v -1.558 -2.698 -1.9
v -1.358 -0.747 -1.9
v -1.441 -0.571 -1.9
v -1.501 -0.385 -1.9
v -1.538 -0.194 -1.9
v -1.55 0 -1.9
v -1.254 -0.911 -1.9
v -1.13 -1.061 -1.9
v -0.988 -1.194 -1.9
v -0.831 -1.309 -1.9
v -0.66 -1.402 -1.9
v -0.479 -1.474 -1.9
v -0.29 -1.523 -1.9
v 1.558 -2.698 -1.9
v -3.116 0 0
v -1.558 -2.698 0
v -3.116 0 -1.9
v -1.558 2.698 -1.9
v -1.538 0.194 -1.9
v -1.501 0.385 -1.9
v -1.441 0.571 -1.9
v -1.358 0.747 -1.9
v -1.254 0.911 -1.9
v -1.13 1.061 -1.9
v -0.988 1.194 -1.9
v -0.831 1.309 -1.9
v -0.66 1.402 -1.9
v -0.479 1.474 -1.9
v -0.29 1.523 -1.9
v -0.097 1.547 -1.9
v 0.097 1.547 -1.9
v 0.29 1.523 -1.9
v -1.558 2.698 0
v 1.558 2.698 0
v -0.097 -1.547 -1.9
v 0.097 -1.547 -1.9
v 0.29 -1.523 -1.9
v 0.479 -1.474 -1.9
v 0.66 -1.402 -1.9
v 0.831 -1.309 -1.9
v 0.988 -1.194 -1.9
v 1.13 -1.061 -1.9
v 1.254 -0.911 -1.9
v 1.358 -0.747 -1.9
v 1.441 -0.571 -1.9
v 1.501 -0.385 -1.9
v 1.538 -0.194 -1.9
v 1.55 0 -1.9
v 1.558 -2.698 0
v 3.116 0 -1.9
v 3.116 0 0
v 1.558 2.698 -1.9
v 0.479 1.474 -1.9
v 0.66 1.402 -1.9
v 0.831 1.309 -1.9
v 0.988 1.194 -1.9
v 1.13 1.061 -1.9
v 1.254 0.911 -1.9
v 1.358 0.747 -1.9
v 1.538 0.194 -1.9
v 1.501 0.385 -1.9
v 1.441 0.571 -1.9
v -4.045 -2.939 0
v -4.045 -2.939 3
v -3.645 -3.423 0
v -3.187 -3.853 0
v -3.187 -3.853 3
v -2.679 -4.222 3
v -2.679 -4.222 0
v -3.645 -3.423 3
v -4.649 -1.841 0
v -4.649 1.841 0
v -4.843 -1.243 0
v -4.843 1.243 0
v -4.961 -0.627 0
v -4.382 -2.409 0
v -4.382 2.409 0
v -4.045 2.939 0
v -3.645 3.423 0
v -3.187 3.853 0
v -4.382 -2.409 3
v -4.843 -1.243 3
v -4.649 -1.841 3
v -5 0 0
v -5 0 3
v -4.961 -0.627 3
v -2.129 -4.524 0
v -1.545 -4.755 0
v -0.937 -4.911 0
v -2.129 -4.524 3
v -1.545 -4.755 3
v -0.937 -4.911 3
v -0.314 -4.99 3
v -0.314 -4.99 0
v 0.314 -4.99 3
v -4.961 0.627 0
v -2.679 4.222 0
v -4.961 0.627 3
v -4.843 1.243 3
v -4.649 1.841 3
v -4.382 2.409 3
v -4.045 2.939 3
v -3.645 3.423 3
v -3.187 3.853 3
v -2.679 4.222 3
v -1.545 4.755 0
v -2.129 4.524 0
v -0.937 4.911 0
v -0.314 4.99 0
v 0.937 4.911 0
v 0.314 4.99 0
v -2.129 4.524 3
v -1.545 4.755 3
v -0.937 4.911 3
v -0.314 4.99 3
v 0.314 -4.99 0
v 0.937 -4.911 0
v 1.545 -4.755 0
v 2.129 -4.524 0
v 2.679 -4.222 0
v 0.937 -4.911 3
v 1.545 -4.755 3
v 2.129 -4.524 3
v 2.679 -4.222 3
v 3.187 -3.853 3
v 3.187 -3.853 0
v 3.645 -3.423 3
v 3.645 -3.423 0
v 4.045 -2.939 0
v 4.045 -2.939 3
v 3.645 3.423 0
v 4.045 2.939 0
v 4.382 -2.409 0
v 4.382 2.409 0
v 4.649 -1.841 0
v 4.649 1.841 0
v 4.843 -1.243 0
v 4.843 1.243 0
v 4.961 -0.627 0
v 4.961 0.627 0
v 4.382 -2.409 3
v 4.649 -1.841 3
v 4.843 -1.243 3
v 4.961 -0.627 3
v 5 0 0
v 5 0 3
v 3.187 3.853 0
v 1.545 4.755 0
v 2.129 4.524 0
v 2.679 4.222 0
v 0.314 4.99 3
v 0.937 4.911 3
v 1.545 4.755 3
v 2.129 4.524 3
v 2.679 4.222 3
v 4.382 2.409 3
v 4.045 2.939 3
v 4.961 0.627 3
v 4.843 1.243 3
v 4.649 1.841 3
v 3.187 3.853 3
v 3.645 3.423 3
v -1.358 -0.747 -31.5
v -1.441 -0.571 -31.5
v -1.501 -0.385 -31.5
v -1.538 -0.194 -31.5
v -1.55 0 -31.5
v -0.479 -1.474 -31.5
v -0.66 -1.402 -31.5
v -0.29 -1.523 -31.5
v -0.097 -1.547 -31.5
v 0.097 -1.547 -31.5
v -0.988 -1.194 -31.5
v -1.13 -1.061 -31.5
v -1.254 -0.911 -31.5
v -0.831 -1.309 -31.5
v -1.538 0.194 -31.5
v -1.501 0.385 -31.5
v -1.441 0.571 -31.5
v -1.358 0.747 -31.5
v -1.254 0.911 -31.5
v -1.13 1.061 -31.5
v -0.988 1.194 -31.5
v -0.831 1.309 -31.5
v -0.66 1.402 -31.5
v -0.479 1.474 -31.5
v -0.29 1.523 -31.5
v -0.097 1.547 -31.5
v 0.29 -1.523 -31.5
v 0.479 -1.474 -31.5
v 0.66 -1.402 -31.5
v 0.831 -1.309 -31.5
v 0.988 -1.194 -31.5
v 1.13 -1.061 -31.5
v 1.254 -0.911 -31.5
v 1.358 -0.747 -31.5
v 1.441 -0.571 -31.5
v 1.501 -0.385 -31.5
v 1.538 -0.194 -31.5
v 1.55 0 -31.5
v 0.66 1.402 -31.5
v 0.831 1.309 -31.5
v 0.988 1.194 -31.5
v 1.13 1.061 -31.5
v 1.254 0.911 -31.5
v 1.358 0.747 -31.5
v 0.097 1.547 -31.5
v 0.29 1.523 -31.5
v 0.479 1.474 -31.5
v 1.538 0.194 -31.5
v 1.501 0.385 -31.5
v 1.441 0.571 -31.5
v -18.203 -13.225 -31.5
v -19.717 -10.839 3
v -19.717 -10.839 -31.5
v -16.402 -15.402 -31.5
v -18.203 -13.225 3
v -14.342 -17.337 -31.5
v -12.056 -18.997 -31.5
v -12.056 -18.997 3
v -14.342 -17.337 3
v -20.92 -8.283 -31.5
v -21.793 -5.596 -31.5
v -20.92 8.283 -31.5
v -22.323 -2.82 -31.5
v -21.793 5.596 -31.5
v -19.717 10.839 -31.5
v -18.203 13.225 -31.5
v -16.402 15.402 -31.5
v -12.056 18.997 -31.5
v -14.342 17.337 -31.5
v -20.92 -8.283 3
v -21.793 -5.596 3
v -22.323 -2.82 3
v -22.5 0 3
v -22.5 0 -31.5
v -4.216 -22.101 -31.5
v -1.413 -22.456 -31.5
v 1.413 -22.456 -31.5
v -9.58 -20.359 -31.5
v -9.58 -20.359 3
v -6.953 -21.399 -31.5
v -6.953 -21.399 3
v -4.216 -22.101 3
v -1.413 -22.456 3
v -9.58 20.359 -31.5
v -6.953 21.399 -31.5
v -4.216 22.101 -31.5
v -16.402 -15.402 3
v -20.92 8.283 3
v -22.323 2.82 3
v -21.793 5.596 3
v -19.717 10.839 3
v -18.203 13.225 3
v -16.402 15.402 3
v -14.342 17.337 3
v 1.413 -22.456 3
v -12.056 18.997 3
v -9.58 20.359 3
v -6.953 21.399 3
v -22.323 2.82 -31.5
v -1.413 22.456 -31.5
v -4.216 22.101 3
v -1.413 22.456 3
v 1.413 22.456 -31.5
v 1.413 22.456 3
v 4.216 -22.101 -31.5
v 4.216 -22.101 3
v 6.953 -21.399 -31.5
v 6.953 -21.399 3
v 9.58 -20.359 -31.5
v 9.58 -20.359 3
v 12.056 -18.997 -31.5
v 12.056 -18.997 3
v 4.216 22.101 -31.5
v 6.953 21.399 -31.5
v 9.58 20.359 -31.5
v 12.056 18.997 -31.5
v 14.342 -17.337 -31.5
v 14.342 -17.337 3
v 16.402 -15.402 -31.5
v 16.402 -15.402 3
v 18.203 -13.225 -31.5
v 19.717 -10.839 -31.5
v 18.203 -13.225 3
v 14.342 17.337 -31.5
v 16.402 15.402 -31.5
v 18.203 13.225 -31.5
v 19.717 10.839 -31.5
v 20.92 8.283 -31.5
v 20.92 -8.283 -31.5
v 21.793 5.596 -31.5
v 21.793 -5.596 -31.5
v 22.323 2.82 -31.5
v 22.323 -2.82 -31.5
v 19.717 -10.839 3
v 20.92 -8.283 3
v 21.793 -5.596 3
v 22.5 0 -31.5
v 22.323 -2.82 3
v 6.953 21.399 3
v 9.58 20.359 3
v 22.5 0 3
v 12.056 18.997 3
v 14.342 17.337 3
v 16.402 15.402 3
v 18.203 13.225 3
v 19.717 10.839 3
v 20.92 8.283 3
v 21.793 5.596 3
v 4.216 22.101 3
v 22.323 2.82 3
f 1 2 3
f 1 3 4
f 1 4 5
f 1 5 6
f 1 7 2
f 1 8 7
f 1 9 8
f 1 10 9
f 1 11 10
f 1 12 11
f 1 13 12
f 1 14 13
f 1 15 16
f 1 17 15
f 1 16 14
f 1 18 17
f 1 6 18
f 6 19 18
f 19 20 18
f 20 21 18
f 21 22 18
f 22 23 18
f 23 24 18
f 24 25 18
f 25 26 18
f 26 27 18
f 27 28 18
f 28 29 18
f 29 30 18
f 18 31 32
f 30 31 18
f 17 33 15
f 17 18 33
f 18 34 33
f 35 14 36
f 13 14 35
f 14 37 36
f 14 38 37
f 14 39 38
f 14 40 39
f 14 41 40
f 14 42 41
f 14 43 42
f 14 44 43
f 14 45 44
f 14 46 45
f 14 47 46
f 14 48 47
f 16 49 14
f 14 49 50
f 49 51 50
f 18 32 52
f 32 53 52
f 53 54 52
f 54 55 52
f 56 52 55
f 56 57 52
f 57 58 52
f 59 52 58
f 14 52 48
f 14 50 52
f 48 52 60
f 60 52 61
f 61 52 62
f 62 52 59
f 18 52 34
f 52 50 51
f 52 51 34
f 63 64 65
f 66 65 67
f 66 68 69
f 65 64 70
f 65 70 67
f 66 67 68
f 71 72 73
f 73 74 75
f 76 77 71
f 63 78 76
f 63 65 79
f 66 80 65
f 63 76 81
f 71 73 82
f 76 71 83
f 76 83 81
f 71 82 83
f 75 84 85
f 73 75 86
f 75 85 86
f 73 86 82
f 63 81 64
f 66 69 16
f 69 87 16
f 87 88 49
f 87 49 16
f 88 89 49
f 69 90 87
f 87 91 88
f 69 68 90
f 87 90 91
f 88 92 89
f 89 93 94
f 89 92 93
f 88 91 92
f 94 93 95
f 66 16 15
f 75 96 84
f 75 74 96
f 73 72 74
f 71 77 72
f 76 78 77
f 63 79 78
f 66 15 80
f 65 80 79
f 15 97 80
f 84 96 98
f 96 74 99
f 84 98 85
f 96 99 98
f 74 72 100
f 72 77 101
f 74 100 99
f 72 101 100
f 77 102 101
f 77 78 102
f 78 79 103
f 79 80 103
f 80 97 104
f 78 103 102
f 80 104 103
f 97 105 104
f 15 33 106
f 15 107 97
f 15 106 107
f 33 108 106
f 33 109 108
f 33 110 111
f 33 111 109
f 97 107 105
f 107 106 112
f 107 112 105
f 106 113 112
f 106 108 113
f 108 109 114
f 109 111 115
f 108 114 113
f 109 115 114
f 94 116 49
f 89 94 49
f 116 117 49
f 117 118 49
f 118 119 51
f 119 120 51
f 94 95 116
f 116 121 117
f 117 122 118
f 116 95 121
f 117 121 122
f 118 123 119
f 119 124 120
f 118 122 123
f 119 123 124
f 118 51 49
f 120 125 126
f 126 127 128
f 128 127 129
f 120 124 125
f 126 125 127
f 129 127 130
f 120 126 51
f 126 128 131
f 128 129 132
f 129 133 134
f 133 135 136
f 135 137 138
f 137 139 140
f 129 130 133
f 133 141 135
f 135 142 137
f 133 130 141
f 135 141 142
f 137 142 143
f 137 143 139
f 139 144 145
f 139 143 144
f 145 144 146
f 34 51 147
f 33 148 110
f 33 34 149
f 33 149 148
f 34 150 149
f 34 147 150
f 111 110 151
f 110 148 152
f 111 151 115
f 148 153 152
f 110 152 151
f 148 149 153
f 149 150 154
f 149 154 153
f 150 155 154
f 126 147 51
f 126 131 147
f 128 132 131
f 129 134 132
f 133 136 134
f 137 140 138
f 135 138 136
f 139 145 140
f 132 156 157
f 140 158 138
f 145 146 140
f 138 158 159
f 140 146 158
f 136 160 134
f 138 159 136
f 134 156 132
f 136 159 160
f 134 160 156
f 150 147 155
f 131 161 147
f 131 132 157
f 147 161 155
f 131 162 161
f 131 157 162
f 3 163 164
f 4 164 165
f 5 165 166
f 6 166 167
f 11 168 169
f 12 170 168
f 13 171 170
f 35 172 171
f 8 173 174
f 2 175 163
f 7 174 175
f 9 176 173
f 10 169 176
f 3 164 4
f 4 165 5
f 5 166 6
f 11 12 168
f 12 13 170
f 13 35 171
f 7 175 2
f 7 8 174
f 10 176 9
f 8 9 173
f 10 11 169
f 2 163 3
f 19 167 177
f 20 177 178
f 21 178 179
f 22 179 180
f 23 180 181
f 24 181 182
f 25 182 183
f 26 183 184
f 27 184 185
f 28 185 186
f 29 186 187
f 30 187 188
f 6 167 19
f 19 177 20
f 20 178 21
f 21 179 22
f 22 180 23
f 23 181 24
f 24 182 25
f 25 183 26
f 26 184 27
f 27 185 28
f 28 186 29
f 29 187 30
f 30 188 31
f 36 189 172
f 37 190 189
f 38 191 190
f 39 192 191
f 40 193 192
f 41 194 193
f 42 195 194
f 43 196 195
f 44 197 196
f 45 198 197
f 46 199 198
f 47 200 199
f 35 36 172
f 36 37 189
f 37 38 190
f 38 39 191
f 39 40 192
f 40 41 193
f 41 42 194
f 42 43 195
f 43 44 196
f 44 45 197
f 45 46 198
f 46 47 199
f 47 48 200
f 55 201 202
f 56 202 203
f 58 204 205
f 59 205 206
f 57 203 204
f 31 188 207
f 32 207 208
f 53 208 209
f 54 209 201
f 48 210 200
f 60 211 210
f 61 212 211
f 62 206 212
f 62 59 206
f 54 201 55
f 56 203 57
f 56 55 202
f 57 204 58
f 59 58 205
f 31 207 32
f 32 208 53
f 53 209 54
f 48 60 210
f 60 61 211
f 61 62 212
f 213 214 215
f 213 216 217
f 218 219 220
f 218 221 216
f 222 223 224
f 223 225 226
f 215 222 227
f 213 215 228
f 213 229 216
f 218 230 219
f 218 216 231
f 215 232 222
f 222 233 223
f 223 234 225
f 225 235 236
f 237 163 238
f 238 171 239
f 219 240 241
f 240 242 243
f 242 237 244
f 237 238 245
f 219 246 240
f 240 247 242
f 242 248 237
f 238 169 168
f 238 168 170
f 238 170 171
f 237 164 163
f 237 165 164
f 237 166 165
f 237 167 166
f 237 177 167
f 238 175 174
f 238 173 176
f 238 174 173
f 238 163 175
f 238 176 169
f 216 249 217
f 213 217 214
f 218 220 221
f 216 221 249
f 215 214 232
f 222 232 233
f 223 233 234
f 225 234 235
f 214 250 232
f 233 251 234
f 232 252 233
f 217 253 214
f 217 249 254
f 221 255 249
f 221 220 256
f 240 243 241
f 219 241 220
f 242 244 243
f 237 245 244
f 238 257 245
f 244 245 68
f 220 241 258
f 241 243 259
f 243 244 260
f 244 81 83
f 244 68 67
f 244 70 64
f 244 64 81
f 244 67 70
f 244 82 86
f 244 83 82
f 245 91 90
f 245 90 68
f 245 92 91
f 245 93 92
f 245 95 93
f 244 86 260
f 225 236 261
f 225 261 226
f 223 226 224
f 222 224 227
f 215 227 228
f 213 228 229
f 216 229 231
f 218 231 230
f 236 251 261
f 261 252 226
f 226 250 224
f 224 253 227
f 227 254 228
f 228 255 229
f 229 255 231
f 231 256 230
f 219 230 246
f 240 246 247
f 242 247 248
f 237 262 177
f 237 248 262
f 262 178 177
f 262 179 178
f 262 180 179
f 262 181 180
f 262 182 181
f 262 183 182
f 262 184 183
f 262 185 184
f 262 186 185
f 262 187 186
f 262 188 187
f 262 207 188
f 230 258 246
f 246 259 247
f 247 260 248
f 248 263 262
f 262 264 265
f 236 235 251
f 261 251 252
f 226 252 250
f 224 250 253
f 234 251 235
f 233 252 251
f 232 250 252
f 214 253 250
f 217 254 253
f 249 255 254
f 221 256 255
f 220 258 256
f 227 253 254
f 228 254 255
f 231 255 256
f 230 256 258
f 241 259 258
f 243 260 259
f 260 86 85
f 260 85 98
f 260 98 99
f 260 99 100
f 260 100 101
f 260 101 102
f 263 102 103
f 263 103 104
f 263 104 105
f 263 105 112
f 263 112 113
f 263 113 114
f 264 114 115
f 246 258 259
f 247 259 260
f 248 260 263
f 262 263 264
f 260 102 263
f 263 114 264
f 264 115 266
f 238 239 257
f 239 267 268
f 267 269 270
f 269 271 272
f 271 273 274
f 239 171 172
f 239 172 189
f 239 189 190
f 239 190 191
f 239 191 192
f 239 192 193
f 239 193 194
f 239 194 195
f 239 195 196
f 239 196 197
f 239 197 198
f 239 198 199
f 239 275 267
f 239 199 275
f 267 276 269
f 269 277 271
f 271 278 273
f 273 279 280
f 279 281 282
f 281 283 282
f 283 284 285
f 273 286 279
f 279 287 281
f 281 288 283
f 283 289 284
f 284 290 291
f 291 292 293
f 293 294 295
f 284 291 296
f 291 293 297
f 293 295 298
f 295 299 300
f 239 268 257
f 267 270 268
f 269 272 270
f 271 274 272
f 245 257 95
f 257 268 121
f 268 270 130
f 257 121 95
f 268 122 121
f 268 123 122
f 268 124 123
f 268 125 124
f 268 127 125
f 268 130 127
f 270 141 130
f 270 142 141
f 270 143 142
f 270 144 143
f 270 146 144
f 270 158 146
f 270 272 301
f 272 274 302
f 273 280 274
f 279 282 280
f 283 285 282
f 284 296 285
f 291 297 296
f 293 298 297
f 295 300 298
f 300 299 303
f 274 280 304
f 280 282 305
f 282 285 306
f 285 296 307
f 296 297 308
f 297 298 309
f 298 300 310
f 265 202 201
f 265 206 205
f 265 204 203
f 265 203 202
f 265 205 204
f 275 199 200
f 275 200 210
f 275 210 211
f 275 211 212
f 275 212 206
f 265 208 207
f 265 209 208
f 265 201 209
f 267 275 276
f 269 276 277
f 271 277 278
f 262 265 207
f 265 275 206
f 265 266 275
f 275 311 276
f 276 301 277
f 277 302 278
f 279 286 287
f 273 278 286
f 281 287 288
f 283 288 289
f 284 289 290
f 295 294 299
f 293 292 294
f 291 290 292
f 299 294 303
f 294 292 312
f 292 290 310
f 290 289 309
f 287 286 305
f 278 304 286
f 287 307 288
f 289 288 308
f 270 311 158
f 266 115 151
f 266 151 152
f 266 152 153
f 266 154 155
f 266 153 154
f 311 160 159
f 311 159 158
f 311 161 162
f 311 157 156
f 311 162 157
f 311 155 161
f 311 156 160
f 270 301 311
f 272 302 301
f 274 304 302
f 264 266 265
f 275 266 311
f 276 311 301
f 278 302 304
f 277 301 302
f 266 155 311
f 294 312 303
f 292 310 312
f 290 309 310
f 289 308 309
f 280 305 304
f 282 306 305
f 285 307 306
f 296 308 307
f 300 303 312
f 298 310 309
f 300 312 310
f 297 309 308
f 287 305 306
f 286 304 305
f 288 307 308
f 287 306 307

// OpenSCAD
$fn = 50;

difference() {
	union() {
		translate(v = [0, 0, -31.5]) {
			cylinder(h = 34.5, r = 22.5);
		}
	}
	union() {
		translate(v = [0, 0, 0]) {
			rotate(a = [0, 0, 0]) {
				difference() {
					union() {
						translate(v = [0, 0, -1.9]) {
							linear_extrude(height = 1.9) {
								polygon(points = [[3.1158, 0.0], [1.5579000000000005, 2.698361953111554], [-1.5578999999999994, 2.6983619531115544], [-3.1158, 3.815754496783323e-16], [-1.5579000000000014, -2.6983619531115535], [1.557899999999998, -2.6983619531115552]]);
							}
						}
					}
					union();
				}
			}
		}
		#cylinder(h = 3, r = 5.0);
		#translate(v = [0, 0, -100.0]) {
			cylinder(h = 200, r = 1.55);
		}
	}
}
